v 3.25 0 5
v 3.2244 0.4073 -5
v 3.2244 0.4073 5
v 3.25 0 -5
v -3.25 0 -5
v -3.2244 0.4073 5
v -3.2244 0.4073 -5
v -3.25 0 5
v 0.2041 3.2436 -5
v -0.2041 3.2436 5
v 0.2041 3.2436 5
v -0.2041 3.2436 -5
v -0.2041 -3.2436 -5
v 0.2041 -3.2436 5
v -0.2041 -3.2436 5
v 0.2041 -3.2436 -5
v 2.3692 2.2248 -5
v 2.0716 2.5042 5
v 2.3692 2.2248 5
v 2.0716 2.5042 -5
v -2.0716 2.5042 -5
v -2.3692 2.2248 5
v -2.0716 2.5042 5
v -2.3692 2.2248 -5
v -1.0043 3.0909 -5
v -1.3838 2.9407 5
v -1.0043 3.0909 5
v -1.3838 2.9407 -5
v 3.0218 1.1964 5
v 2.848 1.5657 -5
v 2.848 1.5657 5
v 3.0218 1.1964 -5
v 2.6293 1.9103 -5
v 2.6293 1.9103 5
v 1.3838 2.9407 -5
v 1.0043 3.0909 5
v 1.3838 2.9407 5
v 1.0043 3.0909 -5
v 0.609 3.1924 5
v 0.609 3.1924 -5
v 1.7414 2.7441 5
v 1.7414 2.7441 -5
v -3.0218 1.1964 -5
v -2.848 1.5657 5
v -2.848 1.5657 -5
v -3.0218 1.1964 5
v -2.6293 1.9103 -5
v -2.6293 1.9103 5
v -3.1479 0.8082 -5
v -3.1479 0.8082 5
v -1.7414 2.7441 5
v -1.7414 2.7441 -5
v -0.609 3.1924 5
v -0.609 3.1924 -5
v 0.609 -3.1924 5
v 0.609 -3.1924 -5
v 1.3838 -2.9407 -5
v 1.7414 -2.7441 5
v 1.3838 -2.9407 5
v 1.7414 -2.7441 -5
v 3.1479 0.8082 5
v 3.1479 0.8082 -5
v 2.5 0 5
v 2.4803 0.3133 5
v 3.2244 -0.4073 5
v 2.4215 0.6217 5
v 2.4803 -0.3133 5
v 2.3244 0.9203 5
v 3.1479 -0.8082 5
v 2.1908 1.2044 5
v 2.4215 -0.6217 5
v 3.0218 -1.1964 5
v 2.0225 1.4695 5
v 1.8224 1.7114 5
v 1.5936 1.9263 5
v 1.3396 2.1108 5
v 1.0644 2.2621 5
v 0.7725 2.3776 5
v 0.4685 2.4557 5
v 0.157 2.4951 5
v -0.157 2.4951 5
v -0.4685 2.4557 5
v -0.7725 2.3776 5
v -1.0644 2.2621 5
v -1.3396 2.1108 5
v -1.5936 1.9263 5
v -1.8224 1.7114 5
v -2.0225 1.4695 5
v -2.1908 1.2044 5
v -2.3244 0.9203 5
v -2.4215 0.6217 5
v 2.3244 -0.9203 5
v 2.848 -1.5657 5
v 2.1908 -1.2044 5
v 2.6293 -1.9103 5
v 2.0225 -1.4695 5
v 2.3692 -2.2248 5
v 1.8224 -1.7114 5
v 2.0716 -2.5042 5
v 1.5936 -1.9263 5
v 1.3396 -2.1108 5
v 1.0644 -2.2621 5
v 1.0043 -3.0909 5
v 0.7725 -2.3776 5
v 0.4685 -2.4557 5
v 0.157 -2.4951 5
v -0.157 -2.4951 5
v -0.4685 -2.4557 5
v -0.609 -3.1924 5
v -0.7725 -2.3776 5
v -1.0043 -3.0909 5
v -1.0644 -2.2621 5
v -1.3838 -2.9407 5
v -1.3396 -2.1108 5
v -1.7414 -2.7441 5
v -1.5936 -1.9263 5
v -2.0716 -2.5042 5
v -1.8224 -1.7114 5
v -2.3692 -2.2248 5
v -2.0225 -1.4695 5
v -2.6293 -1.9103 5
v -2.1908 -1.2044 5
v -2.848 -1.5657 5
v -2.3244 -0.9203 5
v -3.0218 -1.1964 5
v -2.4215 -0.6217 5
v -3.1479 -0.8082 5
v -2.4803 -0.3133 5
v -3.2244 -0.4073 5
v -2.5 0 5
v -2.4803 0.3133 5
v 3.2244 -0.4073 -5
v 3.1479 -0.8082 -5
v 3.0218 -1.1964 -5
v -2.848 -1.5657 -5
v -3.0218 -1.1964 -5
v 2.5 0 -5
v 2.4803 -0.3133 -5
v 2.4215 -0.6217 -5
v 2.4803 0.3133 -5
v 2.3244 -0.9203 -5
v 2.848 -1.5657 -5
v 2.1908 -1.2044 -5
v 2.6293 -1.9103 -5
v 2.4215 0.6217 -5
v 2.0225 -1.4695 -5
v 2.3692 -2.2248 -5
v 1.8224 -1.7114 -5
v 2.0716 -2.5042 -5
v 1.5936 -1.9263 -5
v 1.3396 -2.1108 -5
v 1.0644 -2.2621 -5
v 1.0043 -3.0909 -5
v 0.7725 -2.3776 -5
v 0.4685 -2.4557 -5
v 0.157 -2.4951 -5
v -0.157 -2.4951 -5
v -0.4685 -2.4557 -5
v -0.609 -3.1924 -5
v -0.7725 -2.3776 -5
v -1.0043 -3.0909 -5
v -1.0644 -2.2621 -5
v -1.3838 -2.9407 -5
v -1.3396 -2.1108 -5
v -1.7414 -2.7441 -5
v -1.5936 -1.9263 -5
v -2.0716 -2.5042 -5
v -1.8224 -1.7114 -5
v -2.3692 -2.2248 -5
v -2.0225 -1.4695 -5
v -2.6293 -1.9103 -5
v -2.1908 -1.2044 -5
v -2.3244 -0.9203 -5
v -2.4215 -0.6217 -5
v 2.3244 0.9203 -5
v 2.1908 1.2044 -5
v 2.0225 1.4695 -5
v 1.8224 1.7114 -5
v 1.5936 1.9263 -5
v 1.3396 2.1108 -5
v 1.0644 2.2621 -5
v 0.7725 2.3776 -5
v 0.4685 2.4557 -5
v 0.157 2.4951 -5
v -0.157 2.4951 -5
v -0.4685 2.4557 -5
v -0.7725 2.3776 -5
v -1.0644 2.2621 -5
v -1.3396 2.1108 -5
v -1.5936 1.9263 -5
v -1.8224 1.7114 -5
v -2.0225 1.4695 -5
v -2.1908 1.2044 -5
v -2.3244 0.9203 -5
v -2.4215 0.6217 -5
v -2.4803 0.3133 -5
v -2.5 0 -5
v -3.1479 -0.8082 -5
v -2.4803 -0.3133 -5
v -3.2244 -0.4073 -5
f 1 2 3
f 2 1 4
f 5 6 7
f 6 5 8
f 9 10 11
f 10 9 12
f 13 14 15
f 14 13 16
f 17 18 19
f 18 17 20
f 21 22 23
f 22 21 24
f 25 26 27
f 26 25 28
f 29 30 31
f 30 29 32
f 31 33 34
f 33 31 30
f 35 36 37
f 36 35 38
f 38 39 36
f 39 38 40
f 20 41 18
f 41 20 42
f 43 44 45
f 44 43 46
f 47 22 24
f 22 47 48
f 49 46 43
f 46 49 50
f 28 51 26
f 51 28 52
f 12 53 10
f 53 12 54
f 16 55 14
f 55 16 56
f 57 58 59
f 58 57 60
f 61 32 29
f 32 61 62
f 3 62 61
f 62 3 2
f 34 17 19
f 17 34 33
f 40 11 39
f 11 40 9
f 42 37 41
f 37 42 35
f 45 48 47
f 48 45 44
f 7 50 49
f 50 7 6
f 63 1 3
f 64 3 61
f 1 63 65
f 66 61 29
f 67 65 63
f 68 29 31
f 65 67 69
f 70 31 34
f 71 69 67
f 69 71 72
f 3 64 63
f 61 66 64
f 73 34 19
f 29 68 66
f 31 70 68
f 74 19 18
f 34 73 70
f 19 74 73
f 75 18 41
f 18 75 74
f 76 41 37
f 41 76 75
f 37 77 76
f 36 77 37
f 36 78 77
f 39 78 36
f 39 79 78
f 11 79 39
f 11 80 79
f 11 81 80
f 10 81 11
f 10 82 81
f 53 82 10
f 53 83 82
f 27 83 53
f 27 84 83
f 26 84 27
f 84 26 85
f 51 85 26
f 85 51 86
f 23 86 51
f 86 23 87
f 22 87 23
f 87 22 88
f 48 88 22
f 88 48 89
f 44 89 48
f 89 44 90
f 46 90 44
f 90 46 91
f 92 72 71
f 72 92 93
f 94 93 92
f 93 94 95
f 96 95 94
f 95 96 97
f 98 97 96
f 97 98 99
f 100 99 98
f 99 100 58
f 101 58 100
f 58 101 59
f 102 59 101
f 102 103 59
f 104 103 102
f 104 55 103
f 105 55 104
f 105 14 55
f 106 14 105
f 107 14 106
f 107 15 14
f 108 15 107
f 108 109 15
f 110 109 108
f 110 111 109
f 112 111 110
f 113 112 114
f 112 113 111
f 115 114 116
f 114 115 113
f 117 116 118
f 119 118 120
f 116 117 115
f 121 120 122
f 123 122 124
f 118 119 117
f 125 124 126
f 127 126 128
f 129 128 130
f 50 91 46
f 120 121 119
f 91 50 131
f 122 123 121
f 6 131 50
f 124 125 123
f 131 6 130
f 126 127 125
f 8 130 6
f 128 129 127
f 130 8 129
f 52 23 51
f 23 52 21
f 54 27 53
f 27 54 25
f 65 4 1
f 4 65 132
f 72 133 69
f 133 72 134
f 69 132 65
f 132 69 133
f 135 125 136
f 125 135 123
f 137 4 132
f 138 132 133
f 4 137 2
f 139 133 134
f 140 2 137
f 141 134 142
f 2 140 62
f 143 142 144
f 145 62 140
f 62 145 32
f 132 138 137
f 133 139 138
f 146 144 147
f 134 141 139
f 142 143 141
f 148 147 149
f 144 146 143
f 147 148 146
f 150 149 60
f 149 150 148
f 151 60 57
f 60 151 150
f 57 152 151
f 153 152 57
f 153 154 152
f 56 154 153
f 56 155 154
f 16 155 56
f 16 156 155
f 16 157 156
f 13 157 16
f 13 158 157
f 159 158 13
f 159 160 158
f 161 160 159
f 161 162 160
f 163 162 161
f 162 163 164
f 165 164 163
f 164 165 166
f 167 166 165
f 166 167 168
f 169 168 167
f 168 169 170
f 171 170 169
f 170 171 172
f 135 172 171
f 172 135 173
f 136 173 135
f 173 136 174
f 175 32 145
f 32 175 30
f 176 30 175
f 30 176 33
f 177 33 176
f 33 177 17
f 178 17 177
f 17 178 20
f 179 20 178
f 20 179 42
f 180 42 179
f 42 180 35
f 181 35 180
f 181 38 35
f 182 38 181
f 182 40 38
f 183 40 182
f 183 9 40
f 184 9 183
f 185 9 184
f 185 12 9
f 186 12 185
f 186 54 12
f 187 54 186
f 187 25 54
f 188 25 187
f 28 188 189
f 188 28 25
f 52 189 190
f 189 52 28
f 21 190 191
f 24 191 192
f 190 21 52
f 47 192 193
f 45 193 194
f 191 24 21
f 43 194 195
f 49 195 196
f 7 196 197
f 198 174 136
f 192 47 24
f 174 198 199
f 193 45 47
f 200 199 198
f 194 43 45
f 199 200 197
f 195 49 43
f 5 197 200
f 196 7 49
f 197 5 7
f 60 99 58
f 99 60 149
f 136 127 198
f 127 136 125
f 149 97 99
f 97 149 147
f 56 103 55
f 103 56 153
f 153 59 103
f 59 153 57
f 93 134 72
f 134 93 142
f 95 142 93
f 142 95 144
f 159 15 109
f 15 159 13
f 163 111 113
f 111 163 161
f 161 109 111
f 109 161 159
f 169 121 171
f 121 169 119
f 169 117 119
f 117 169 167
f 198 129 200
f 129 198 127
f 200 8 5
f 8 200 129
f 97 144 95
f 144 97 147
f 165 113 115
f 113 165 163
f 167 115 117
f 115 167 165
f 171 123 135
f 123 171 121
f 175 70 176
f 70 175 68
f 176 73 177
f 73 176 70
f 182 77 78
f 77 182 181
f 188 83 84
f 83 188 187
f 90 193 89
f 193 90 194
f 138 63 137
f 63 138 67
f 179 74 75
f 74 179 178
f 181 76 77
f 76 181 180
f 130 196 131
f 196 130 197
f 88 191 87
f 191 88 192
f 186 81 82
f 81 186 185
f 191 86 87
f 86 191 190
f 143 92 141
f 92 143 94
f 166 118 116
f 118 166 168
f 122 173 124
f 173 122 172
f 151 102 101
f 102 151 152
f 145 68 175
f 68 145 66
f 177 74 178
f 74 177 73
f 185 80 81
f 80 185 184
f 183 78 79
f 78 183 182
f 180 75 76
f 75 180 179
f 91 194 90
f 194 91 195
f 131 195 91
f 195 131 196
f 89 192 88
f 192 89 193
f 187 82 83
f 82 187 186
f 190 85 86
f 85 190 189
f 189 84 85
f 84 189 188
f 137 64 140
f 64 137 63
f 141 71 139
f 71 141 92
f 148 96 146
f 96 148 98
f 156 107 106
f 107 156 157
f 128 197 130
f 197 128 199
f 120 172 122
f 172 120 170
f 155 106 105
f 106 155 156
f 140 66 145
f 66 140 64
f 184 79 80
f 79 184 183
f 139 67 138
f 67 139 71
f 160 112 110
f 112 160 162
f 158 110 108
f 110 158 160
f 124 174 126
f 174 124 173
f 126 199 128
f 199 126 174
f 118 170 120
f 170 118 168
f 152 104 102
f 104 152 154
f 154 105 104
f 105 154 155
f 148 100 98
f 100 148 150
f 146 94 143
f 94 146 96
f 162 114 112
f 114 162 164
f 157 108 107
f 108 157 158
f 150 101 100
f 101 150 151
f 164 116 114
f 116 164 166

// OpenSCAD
$fn = 50;


difference() {
	union() {
		translate(v = [0, 0, -5.0000000000]) {
			cylinder(h = 10, r = 3.2500000000);
		}
	}
	union() {
		translate(v = [0, 0, -100.0000000000]) {
			cylinder(h = 200, r = 2.5000000000);
		}
	}
}
